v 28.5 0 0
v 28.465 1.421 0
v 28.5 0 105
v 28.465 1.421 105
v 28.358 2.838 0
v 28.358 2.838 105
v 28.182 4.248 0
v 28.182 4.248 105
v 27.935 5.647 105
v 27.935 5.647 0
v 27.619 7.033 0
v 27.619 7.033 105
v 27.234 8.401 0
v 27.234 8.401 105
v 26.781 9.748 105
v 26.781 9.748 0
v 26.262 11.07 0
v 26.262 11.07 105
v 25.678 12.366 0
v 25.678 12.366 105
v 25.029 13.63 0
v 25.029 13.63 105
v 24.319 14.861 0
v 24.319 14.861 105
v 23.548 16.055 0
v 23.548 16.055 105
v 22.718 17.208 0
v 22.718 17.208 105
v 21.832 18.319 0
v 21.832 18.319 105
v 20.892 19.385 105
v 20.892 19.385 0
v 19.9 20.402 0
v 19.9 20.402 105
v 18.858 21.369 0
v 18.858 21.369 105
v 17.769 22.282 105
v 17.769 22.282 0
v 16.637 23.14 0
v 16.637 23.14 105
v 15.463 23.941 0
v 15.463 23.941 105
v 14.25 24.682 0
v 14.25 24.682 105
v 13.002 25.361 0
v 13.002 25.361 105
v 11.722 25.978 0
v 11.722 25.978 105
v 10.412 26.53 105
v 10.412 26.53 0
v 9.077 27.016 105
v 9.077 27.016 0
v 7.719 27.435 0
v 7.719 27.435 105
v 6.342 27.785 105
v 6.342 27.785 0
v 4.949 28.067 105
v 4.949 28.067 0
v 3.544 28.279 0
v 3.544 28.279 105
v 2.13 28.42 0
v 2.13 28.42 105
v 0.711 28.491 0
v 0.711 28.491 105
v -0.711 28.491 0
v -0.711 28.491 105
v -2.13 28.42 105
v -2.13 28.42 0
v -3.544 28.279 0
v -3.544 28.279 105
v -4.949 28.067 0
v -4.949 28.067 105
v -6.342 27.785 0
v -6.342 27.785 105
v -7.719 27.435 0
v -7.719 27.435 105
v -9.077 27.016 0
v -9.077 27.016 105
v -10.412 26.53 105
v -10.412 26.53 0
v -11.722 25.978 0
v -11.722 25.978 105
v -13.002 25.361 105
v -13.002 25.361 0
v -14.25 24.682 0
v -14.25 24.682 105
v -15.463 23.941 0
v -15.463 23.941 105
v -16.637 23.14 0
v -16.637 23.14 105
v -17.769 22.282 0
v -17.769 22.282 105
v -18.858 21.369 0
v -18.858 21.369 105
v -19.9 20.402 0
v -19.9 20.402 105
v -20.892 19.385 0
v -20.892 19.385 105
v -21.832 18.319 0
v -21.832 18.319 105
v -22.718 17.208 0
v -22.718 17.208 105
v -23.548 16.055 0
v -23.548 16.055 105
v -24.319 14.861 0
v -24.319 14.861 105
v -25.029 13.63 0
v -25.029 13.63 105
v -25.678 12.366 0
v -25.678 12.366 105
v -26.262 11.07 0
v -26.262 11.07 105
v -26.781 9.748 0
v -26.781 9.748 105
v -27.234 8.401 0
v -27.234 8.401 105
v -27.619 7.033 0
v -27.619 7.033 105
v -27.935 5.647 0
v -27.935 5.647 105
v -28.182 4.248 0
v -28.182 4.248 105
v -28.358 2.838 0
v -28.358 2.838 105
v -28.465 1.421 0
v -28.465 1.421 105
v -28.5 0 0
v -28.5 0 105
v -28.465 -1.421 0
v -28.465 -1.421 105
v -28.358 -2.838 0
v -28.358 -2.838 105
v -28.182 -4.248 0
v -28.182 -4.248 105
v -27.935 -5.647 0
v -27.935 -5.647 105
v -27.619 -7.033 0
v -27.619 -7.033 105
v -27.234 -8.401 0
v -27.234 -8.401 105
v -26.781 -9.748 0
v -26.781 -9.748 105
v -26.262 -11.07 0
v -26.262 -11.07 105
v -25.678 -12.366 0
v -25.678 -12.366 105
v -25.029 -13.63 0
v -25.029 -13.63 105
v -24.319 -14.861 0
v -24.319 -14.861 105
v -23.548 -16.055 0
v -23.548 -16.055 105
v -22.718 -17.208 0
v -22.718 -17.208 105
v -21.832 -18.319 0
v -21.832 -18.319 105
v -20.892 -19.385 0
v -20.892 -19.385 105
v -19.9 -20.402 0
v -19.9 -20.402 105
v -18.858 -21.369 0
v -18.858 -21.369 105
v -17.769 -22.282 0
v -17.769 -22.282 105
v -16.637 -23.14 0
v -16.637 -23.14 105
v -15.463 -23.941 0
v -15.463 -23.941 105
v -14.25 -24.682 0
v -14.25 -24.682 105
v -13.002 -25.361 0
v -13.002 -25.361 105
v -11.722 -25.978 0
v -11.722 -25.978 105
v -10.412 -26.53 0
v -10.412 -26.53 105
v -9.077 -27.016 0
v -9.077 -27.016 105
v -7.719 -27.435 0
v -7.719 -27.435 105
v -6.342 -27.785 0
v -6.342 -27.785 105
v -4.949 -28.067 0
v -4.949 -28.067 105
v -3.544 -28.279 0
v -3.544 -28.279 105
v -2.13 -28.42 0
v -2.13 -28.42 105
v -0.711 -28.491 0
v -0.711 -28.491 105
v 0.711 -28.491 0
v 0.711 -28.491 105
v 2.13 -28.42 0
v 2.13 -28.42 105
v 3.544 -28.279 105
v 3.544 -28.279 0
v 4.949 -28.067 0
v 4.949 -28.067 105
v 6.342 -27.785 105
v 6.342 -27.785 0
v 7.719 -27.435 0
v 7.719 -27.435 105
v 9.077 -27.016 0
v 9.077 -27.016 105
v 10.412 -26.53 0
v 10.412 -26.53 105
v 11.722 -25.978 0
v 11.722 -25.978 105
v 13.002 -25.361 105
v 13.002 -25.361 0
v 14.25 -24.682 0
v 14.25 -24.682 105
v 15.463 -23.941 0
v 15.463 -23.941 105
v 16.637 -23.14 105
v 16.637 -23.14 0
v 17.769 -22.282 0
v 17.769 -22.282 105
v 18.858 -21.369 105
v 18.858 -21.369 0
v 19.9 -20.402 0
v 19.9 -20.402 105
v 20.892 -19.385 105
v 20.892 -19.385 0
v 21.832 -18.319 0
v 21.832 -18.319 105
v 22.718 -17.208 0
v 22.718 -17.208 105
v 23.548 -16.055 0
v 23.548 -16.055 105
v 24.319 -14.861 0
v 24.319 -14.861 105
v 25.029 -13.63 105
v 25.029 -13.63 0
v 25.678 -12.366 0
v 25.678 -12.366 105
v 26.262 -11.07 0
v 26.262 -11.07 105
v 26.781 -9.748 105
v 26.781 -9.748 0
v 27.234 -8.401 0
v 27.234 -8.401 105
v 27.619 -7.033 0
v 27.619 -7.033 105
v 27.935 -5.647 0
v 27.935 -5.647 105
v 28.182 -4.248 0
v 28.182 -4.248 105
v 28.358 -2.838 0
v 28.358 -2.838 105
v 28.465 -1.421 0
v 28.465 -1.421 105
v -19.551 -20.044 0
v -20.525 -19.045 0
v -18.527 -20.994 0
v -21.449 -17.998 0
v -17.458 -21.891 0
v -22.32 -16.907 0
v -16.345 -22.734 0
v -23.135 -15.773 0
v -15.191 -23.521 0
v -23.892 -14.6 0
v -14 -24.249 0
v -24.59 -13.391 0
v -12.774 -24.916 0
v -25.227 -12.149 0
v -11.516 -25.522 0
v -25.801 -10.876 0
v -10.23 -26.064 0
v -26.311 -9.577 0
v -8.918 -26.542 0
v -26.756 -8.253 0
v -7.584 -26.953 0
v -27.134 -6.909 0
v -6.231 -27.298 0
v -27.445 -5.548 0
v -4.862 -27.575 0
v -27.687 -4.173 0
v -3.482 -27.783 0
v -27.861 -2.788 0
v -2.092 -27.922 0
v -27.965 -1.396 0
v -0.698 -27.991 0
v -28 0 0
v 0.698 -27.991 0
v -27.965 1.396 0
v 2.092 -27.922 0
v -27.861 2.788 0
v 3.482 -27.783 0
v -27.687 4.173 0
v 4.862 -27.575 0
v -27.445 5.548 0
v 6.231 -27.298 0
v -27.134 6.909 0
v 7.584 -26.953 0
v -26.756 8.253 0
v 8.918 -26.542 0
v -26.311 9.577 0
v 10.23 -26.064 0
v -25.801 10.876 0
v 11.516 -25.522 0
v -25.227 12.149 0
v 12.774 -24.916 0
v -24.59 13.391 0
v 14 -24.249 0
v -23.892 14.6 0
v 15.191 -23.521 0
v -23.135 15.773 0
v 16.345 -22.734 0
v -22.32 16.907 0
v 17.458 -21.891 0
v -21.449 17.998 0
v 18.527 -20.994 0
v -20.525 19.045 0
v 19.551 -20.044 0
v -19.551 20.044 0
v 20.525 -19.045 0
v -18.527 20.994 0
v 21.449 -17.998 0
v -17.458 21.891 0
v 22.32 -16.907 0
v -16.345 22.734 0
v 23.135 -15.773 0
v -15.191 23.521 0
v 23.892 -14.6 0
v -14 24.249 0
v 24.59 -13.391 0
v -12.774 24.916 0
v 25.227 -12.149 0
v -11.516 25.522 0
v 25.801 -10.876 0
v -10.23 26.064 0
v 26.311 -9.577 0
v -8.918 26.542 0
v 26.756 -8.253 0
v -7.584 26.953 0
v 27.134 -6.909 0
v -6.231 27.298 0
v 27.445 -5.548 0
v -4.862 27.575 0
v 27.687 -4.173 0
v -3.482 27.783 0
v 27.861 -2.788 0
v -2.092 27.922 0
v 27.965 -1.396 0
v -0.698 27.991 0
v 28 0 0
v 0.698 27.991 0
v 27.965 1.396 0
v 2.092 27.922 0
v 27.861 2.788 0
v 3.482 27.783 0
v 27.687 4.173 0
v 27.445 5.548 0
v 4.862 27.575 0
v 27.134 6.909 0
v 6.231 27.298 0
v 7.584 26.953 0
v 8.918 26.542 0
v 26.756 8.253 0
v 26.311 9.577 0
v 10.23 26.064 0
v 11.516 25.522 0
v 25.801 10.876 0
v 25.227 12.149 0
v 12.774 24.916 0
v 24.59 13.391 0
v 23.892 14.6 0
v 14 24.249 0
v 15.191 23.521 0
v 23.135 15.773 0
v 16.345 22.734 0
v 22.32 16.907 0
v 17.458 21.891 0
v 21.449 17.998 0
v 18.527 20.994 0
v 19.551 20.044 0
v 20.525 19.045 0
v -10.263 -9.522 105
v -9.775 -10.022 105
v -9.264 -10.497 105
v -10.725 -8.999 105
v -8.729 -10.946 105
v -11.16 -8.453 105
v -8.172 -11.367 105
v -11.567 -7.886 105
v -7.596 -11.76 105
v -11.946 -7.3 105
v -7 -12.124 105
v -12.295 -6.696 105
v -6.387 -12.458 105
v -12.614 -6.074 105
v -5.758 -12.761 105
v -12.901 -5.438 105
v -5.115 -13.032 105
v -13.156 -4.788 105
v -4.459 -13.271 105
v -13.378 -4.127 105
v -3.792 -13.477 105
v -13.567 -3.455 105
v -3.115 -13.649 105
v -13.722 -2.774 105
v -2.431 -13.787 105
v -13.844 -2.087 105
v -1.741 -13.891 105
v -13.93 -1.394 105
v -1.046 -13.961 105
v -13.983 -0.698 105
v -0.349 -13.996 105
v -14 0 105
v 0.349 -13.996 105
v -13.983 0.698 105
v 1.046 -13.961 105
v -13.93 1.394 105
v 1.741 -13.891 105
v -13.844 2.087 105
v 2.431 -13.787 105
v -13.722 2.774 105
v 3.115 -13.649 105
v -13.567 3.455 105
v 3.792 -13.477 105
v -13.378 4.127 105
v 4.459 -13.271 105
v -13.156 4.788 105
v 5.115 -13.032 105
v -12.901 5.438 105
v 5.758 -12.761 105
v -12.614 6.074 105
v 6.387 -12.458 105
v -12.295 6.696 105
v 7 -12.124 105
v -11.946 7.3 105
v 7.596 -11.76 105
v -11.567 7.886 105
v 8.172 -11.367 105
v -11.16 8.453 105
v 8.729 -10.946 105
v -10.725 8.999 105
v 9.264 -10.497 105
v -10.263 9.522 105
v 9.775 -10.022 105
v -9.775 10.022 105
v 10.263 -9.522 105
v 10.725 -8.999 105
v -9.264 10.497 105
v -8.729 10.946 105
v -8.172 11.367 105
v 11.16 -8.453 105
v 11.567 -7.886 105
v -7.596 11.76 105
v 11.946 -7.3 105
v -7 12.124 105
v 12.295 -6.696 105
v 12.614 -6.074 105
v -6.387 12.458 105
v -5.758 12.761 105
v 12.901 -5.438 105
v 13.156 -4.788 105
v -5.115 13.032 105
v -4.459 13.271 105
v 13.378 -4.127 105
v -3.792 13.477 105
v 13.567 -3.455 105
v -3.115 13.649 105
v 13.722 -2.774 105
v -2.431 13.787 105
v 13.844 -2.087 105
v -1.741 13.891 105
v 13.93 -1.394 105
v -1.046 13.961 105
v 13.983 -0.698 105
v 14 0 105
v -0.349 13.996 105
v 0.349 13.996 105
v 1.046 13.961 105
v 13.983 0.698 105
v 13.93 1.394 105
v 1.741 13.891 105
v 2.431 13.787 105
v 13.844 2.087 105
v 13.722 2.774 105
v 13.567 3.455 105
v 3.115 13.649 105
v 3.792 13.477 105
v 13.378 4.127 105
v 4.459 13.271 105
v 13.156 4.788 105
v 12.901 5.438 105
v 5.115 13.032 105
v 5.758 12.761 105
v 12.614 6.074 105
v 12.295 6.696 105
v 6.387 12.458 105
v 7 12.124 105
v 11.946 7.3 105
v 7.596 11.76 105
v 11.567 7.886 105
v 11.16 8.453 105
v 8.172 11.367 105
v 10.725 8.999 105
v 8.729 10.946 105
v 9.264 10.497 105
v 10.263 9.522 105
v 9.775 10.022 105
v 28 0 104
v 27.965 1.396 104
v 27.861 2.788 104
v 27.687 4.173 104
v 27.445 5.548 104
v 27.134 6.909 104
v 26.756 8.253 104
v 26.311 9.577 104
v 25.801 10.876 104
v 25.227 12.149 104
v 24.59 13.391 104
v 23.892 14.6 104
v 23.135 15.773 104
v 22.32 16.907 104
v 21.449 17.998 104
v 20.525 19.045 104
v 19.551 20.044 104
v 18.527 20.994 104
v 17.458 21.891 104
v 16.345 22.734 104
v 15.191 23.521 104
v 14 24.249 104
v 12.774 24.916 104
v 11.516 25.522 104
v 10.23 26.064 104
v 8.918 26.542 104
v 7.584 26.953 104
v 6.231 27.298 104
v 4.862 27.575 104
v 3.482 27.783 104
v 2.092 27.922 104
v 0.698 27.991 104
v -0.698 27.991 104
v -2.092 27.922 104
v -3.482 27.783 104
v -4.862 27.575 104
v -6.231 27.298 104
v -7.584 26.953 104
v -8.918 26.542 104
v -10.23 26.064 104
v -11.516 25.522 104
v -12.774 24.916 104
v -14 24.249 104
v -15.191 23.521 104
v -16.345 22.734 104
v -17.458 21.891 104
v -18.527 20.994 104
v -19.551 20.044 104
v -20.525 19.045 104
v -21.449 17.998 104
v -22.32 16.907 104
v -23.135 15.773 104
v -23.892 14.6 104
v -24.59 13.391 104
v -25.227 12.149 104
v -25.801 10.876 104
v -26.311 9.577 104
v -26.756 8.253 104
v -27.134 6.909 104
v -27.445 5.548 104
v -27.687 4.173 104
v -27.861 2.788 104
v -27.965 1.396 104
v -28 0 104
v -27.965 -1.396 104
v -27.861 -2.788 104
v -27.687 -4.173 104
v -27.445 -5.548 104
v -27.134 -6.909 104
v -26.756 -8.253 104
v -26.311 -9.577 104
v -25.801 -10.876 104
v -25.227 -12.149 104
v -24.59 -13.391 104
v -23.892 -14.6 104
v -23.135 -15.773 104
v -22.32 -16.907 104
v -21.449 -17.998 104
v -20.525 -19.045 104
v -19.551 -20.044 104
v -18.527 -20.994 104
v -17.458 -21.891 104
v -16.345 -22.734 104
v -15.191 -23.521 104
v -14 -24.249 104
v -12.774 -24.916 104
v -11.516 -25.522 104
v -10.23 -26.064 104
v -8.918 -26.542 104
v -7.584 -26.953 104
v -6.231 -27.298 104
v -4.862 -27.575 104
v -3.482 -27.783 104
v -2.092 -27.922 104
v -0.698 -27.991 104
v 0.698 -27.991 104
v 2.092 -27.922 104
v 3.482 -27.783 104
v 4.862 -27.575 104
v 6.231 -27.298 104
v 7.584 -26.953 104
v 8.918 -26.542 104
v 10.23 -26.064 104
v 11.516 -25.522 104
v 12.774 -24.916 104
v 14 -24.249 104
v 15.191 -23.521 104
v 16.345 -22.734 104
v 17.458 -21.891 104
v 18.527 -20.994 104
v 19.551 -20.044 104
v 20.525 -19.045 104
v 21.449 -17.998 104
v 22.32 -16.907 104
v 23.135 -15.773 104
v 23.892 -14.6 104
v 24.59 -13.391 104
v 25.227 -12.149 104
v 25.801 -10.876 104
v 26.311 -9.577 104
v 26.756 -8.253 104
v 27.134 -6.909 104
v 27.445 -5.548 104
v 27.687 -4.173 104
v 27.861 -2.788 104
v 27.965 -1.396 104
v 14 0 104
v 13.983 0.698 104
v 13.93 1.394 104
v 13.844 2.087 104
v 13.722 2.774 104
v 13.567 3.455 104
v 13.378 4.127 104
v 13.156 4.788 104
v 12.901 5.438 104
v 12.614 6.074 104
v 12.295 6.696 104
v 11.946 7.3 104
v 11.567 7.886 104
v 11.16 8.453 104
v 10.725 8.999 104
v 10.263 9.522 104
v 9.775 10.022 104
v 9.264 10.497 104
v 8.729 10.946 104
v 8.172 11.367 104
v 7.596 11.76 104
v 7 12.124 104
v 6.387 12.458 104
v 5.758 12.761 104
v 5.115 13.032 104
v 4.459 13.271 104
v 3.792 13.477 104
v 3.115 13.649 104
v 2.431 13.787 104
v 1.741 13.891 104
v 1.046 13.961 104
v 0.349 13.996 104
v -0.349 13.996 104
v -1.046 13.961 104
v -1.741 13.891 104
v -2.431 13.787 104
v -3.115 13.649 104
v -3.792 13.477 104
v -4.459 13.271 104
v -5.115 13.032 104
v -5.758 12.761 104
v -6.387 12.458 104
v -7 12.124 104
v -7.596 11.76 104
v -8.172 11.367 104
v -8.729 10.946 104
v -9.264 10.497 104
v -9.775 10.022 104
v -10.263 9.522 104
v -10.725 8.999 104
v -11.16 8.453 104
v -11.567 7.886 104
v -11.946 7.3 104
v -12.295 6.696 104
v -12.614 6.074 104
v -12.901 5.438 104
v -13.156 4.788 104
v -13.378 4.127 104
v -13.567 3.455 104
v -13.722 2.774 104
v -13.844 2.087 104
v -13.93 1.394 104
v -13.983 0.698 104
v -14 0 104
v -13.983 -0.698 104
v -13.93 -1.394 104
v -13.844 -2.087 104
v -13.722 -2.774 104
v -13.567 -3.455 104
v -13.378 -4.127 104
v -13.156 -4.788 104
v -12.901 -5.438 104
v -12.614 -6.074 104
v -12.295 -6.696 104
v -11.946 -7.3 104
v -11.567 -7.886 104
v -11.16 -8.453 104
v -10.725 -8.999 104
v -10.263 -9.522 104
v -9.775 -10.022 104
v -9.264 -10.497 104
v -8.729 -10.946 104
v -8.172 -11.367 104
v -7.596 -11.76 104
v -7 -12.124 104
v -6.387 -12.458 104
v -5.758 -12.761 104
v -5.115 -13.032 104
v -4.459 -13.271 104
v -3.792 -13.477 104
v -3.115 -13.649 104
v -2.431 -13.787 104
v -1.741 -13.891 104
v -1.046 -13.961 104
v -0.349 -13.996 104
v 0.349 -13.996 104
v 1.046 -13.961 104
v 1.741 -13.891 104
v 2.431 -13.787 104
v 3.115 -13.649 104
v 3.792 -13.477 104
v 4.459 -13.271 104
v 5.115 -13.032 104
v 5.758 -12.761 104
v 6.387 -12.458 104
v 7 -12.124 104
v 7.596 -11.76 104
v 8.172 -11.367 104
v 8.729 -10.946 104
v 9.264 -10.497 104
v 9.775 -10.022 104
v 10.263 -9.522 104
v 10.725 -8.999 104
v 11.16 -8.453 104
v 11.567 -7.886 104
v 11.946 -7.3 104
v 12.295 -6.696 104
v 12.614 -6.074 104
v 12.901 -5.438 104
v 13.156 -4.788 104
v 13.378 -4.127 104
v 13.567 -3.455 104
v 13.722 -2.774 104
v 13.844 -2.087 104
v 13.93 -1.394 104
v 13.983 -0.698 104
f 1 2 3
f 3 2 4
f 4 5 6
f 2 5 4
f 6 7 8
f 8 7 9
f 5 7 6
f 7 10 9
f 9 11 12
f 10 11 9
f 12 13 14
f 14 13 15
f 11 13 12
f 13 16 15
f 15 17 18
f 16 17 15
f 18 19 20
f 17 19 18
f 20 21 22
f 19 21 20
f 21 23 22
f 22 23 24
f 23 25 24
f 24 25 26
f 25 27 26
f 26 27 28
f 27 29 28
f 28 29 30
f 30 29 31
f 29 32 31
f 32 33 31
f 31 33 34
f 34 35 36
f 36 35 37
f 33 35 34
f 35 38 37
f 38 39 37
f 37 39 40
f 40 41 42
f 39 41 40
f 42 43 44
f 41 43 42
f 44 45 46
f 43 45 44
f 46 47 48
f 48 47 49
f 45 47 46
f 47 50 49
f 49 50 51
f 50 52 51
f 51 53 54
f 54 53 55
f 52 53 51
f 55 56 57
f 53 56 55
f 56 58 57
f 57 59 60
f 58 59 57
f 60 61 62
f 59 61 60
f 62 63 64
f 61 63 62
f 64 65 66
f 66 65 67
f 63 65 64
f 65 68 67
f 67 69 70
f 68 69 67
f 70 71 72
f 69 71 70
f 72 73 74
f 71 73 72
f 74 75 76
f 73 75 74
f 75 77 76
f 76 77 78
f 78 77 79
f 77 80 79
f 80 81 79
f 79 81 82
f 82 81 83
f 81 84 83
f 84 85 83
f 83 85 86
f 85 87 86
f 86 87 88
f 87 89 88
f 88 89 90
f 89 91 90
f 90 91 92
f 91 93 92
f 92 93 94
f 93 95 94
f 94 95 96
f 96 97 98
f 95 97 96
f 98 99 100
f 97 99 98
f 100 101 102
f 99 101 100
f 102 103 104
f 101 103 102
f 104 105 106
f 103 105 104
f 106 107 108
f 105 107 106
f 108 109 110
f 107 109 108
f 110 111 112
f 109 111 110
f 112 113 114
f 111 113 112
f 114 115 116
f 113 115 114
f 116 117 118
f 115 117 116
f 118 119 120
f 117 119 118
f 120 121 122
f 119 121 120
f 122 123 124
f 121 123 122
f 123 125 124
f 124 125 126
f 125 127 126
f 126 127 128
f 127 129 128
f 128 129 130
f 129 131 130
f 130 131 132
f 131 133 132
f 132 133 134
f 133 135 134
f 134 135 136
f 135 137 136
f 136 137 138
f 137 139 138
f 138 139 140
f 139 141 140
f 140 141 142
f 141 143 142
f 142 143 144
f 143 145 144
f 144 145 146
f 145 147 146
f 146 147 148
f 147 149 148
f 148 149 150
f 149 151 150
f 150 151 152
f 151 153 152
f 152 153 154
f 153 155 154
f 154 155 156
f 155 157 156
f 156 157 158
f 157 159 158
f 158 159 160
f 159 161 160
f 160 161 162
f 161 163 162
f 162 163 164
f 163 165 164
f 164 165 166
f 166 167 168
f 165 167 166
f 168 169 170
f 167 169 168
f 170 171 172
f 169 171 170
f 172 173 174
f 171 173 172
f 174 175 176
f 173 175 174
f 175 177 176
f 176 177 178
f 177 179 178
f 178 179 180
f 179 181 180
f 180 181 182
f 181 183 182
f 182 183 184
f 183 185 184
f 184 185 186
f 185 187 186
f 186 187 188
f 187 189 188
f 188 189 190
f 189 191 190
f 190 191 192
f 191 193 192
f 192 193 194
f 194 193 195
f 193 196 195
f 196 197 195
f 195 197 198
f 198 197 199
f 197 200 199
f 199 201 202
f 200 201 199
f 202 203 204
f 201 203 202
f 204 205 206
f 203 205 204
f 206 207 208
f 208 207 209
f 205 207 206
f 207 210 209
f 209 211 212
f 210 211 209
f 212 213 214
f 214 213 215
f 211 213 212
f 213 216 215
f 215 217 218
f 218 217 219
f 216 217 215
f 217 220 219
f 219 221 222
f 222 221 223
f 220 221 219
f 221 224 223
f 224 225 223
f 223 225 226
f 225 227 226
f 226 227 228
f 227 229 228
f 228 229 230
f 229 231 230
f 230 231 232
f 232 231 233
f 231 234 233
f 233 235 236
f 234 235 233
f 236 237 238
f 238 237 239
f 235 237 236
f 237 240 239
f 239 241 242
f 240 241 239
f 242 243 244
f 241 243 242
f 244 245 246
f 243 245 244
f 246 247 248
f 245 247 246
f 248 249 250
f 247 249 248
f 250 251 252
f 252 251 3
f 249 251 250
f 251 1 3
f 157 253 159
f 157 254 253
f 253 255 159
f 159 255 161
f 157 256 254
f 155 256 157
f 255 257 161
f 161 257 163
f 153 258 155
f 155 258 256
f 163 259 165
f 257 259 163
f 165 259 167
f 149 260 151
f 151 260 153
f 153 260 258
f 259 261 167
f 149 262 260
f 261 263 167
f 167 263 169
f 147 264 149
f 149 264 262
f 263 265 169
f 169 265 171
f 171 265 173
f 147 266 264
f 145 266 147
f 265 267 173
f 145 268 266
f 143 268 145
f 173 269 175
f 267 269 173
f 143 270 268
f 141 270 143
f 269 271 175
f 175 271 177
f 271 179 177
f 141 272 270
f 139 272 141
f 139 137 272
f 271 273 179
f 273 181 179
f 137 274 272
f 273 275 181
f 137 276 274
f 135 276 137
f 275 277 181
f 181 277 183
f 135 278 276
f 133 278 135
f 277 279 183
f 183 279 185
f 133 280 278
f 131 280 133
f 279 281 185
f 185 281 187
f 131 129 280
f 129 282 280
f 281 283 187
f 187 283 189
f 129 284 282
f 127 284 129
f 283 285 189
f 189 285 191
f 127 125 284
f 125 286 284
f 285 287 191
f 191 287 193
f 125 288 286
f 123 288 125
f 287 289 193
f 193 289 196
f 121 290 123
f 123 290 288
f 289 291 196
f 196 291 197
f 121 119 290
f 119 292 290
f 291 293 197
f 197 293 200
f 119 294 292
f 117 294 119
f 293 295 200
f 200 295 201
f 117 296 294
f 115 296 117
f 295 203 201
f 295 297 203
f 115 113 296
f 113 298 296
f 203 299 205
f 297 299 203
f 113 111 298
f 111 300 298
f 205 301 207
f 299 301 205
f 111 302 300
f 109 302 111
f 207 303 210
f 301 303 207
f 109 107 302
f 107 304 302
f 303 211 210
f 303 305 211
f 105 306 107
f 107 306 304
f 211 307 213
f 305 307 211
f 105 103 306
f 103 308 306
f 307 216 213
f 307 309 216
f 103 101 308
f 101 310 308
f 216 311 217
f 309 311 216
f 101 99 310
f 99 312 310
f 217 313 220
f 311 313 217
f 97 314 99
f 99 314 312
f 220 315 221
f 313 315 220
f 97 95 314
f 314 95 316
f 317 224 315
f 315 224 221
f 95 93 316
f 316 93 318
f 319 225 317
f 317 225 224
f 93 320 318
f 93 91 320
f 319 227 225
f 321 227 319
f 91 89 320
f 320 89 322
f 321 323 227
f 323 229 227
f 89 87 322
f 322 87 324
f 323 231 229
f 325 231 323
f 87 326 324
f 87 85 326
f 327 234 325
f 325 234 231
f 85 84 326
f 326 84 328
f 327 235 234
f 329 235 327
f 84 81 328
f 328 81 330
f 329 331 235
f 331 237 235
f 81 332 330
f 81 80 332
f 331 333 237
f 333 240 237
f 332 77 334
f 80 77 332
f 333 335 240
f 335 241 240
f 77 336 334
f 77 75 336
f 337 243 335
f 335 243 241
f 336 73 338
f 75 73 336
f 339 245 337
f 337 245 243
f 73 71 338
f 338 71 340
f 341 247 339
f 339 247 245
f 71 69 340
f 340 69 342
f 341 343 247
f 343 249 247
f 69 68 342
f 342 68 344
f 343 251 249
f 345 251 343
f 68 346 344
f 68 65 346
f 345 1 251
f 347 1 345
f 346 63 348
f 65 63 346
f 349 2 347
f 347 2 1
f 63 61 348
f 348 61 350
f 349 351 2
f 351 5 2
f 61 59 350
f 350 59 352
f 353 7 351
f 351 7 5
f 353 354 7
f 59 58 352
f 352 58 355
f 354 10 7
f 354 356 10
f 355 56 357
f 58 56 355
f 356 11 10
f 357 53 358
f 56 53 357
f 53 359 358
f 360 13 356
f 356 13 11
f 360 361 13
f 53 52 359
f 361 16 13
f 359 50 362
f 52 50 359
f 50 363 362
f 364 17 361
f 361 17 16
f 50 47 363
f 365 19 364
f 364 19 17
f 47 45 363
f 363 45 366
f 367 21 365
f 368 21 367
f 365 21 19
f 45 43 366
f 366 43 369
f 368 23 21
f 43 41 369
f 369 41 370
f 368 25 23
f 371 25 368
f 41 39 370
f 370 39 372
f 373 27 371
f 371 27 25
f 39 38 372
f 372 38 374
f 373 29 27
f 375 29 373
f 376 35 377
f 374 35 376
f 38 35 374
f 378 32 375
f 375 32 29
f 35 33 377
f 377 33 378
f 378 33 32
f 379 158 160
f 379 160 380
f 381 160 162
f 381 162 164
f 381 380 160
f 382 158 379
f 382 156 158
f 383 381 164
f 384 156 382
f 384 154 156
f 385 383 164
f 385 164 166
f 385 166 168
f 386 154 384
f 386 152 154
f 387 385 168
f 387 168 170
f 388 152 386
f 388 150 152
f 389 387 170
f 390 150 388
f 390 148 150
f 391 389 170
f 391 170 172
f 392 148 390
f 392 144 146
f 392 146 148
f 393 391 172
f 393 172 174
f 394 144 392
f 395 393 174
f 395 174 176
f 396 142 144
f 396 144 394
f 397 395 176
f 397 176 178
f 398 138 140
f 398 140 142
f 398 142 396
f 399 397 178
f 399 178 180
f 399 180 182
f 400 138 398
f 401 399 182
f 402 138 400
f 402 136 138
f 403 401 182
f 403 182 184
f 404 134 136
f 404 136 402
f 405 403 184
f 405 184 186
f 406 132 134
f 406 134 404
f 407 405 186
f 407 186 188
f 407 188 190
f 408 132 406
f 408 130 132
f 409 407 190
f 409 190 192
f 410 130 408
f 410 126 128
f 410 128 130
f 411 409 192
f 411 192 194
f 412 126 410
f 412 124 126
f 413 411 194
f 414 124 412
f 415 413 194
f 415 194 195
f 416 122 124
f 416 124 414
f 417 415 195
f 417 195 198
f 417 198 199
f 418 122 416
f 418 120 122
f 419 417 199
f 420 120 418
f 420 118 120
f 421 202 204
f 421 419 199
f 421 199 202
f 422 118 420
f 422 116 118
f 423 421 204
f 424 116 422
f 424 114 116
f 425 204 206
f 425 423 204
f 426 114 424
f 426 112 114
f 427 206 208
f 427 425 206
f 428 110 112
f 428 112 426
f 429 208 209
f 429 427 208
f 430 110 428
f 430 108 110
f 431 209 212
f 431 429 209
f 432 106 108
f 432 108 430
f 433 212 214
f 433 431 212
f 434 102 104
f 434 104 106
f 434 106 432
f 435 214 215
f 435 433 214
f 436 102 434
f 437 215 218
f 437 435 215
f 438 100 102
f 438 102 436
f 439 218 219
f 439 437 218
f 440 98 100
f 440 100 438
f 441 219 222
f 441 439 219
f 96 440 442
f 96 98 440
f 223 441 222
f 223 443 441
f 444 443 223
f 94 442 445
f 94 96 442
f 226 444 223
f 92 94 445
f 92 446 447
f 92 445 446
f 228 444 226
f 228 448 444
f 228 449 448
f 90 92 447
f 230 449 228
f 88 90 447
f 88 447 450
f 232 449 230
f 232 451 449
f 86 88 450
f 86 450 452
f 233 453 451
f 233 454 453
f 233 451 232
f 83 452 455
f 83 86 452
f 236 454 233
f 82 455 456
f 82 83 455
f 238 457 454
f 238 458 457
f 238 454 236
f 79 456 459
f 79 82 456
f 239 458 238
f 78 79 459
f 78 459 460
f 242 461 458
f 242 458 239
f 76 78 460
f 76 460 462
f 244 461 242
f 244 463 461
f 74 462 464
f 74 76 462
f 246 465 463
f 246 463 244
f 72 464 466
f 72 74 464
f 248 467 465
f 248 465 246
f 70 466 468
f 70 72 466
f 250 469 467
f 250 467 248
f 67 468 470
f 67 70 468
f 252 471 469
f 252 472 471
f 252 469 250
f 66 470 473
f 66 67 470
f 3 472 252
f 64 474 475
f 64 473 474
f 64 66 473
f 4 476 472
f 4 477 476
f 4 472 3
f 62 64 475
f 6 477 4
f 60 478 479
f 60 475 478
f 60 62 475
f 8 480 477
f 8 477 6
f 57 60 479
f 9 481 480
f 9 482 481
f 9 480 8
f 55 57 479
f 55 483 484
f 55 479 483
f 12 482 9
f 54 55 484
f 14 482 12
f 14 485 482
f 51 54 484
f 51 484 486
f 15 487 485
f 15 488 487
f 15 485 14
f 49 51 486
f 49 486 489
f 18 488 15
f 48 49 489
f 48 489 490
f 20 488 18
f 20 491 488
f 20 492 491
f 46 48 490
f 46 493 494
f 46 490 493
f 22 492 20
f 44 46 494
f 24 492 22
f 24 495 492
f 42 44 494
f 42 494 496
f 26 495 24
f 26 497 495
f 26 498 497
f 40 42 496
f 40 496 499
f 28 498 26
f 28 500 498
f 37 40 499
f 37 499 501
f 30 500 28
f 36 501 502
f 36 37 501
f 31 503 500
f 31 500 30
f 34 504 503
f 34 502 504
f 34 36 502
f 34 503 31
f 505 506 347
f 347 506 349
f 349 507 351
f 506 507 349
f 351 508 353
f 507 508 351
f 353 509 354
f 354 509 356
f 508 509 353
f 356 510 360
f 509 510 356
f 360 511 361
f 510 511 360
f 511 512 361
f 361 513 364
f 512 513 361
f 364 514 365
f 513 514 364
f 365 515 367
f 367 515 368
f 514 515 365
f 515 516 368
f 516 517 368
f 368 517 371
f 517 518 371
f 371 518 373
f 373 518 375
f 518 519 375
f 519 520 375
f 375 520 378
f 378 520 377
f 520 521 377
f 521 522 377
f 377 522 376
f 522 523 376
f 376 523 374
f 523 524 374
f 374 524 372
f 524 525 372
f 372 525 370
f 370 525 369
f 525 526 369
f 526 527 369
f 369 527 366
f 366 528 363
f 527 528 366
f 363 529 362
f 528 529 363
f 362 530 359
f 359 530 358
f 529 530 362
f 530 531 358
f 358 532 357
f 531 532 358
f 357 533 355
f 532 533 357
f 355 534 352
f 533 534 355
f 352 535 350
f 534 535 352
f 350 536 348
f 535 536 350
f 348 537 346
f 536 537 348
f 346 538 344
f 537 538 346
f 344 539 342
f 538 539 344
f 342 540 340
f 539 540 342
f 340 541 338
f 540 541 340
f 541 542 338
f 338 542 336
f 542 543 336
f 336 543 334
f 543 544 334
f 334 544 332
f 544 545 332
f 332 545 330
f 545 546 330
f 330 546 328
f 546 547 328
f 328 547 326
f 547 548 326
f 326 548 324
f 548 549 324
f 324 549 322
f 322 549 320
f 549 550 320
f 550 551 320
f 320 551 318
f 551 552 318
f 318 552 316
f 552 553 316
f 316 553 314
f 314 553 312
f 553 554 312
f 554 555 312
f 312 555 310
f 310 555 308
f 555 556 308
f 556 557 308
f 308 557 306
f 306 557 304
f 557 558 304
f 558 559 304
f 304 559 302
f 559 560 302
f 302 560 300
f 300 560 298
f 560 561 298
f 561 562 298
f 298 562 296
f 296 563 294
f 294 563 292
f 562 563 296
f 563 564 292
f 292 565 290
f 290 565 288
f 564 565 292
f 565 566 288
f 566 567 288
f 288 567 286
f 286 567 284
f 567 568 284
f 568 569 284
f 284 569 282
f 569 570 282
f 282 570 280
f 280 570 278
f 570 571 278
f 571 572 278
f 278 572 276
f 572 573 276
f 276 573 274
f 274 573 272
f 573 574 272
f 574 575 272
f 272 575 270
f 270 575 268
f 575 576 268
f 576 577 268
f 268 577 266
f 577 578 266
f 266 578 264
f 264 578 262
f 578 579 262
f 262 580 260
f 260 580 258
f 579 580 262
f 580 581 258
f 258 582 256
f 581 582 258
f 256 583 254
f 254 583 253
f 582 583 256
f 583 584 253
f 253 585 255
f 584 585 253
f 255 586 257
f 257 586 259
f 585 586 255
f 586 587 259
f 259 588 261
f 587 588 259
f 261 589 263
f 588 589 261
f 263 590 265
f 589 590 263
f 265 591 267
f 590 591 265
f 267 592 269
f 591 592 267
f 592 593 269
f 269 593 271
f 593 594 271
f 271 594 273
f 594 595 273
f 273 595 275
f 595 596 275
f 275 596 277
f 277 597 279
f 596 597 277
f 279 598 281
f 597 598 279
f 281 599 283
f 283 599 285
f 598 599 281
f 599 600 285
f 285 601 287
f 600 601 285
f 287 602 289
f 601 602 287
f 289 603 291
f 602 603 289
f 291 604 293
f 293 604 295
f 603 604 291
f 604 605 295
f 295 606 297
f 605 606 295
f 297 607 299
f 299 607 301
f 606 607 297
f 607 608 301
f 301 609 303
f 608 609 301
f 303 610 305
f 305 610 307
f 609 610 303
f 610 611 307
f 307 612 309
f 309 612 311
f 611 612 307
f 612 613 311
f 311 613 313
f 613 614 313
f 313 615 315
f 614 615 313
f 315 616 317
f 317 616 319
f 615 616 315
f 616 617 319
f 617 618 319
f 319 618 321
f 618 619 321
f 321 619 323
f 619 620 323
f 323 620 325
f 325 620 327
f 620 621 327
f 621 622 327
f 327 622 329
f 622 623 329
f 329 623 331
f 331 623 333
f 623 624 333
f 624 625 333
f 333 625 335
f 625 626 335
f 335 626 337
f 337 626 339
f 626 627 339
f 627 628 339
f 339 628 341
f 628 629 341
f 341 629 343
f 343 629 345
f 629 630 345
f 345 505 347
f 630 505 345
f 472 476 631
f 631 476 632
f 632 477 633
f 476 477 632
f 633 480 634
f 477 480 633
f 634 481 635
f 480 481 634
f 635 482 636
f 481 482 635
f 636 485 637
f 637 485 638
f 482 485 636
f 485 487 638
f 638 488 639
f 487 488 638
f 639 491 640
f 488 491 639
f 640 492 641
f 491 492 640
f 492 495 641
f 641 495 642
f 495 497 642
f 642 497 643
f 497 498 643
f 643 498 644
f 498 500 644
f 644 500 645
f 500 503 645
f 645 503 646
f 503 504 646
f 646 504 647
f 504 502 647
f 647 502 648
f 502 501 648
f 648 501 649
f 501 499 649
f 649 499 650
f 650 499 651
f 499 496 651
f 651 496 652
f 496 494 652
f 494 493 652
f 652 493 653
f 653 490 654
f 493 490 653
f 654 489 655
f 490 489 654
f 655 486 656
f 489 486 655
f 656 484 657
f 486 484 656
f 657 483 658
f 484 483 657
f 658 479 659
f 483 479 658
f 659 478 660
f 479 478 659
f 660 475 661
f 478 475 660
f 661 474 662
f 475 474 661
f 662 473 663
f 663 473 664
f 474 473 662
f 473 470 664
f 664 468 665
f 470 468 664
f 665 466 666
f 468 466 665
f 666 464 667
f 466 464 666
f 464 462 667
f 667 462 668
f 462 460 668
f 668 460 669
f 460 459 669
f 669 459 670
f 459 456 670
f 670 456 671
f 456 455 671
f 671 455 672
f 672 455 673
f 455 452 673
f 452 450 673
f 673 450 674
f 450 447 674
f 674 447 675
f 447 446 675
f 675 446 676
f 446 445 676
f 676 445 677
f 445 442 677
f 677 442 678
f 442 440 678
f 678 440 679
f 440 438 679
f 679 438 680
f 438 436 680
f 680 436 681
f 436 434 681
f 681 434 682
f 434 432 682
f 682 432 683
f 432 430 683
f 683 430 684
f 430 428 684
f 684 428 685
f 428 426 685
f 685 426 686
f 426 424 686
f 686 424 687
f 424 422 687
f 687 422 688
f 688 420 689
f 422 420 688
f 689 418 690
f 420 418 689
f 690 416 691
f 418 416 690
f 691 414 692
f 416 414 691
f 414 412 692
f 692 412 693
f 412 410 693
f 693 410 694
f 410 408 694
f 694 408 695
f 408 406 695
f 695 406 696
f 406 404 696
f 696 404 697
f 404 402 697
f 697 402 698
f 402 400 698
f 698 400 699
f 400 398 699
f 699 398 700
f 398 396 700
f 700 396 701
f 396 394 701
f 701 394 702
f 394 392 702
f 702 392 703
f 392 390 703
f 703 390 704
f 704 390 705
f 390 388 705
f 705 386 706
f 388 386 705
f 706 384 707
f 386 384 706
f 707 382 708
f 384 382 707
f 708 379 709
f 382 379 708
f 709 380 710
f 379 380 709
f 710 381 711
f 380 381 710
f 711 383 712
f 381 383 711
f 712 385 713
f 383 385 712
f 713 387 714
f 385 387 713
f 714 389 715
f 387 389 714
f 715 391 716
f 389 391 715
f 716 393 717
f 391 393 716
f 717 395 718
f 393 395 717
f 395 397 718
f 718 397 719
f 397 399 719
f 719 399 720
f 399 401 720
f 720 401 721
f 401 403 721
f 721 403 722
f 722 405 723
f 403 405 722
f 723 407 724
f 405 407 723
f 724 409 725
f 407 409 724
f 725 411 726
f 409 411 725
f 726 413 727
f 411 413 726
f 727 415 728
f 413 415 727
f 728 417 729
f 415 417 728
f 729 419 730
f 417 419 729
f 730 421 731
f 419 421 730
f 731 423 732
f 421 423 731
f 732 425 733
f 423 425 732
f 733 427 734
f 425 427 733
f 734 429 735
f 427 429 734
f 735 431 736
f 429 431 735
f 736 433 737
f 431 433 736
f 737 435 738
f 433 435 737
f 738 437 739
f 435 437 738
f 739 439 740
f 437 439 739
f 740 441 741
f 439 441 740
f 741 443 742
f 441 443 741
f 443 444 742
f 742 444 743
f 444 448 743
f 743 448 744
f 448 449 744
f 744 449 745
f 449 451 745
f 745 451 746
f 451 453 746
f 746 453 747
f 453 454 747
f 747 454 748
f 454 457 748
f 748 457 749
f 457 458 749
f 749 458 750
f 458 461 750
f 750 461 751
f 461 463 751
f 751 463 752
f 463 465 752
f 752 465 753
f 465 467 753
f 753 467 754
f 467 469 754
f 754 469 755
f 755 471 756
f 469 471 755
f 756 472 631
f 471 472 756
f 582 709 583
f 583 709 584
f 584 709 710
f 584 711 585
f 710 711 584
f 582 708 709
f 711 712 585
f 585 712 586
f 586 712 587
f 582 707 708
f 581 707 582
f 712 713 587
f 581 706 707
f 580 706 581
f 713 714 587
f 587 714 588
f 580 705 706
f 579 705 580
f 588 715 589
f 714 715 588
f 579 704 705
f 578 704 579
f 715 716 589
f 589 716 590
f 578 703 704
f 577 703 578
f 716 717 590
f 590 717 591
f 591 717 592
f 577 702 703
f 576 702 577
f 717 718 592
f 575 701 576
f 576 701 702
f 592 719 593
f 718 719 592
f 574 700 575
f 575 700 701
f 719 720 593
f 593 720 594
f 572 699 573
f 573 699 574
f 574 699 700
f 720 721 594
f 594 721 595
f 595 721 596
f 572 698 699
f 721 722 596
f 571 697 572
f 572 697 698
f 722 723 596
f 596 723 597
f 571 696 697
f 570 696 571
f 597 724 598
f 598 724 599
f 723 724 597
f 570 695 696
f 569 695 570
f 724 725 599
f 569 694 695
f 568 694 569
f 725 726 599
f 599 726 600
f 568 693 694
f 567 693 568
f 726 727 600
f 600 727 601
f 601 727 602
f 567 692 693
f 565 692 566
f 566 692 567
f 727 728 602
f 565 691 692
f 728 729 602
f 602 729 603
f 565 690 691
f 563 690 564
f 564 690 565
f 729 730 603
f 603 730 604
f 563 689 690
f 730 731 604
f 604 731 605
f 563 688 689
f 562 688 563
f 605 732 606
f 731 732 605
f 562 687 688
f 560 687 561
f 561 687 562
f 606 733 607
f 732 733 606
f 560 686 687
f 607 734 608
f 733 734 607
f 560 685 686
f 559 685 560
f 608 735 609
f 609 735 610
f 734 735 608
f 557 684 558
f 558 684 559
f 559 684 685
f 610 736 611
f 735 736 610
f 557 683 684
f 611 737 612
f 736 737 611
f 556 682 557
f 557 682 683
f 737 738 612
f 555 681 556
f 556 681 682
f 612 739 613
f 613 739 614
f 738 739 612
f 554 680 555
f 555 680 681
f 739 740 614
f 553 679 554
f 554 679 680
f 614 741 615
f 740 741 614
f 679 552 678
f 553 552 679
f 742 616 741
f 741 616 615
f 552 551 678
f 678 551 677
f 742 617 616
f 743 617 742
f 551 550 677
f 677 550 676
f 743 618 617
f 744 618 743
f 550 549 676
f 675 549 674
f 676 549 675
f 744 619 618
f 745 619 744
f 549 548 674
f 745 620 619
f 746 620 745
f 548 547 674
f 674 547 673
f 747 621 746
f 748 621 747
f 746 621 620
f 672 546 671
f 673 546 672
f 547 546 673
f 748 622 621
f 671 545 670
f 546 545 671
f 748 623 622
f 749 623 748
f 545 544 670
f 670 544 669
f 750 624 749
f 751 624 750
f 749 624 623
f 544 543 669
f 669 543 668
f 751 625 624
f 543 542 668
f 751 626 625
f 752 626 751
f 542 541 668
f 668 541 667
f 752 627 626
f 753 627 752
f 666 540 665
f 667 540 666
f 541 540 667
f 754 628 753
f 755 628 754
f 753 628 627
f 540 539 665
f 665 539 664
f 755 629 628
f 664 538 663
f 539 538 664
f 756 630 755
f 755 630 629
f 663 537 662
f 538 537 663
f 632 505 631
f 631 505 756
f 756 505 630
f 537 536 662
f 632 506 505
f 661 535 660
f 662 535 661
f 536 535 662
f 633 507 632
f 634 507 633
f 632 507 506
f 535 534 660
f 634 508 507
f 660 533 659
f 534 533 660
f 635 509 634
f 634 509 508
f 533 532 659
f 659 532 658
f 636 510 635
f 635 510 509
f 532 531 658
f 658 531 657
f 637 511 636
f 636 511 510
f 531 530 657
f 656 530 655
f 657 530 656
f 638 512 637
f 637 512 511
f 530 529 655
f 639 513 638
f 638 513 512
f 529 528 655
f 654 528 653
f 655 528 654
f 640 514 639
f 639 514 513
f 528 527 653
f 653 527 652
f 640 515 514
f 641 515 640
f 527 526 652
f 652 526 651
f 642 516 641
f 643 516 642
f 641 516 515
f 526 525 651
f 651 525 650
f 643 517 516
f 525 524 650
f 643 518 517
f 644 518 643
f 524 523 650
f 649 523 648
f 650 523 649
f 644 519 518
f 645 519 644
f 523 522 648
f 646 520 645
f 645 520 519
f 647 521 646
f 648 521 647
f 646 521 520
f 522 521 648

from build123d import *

# Parameters (mm, degrees)
CYLINDER001_R     = 14
CYLINDER001_DEPTH = 110
CYLINDER_R        = 28
CYLINDER_DEPTH    = 104
SKETCH_R          = 28.5
EXTRUDE_DEPTH     = 105


with BuildPart() as cylinder001:
    # Cylinder001 → Cylinder001 (new body)
    with BuildSketch(Plane.XY):
        Circle(CYLINDER001_R)
    extrude(amount=CYLINDER001_DEPTH)


with BuildPart() as cylinder:
    # Cylinder → Cylinder (new body)
    with BuildSketch(Plane.XY):
        Circle(CYLINDER_R)
    extrude(amount=CYLINDER_DEPTH)


with BuildPart() as cut001:
    # Sketch → Extrude (new body)
    with BuildSketch(Plane.XY):
        Circle(SKETCH_R)
    extrude(amount=EXTRUDE_DEPTH)

    # Cut: cut Cylinder
    add(cylinder.part, mode=Mode.SUBTRACT)

    # Cut001: cut Cylinder001
    add(cylinder001.part, mode=Mode.SUBTRACT)


solid = cut001.part
